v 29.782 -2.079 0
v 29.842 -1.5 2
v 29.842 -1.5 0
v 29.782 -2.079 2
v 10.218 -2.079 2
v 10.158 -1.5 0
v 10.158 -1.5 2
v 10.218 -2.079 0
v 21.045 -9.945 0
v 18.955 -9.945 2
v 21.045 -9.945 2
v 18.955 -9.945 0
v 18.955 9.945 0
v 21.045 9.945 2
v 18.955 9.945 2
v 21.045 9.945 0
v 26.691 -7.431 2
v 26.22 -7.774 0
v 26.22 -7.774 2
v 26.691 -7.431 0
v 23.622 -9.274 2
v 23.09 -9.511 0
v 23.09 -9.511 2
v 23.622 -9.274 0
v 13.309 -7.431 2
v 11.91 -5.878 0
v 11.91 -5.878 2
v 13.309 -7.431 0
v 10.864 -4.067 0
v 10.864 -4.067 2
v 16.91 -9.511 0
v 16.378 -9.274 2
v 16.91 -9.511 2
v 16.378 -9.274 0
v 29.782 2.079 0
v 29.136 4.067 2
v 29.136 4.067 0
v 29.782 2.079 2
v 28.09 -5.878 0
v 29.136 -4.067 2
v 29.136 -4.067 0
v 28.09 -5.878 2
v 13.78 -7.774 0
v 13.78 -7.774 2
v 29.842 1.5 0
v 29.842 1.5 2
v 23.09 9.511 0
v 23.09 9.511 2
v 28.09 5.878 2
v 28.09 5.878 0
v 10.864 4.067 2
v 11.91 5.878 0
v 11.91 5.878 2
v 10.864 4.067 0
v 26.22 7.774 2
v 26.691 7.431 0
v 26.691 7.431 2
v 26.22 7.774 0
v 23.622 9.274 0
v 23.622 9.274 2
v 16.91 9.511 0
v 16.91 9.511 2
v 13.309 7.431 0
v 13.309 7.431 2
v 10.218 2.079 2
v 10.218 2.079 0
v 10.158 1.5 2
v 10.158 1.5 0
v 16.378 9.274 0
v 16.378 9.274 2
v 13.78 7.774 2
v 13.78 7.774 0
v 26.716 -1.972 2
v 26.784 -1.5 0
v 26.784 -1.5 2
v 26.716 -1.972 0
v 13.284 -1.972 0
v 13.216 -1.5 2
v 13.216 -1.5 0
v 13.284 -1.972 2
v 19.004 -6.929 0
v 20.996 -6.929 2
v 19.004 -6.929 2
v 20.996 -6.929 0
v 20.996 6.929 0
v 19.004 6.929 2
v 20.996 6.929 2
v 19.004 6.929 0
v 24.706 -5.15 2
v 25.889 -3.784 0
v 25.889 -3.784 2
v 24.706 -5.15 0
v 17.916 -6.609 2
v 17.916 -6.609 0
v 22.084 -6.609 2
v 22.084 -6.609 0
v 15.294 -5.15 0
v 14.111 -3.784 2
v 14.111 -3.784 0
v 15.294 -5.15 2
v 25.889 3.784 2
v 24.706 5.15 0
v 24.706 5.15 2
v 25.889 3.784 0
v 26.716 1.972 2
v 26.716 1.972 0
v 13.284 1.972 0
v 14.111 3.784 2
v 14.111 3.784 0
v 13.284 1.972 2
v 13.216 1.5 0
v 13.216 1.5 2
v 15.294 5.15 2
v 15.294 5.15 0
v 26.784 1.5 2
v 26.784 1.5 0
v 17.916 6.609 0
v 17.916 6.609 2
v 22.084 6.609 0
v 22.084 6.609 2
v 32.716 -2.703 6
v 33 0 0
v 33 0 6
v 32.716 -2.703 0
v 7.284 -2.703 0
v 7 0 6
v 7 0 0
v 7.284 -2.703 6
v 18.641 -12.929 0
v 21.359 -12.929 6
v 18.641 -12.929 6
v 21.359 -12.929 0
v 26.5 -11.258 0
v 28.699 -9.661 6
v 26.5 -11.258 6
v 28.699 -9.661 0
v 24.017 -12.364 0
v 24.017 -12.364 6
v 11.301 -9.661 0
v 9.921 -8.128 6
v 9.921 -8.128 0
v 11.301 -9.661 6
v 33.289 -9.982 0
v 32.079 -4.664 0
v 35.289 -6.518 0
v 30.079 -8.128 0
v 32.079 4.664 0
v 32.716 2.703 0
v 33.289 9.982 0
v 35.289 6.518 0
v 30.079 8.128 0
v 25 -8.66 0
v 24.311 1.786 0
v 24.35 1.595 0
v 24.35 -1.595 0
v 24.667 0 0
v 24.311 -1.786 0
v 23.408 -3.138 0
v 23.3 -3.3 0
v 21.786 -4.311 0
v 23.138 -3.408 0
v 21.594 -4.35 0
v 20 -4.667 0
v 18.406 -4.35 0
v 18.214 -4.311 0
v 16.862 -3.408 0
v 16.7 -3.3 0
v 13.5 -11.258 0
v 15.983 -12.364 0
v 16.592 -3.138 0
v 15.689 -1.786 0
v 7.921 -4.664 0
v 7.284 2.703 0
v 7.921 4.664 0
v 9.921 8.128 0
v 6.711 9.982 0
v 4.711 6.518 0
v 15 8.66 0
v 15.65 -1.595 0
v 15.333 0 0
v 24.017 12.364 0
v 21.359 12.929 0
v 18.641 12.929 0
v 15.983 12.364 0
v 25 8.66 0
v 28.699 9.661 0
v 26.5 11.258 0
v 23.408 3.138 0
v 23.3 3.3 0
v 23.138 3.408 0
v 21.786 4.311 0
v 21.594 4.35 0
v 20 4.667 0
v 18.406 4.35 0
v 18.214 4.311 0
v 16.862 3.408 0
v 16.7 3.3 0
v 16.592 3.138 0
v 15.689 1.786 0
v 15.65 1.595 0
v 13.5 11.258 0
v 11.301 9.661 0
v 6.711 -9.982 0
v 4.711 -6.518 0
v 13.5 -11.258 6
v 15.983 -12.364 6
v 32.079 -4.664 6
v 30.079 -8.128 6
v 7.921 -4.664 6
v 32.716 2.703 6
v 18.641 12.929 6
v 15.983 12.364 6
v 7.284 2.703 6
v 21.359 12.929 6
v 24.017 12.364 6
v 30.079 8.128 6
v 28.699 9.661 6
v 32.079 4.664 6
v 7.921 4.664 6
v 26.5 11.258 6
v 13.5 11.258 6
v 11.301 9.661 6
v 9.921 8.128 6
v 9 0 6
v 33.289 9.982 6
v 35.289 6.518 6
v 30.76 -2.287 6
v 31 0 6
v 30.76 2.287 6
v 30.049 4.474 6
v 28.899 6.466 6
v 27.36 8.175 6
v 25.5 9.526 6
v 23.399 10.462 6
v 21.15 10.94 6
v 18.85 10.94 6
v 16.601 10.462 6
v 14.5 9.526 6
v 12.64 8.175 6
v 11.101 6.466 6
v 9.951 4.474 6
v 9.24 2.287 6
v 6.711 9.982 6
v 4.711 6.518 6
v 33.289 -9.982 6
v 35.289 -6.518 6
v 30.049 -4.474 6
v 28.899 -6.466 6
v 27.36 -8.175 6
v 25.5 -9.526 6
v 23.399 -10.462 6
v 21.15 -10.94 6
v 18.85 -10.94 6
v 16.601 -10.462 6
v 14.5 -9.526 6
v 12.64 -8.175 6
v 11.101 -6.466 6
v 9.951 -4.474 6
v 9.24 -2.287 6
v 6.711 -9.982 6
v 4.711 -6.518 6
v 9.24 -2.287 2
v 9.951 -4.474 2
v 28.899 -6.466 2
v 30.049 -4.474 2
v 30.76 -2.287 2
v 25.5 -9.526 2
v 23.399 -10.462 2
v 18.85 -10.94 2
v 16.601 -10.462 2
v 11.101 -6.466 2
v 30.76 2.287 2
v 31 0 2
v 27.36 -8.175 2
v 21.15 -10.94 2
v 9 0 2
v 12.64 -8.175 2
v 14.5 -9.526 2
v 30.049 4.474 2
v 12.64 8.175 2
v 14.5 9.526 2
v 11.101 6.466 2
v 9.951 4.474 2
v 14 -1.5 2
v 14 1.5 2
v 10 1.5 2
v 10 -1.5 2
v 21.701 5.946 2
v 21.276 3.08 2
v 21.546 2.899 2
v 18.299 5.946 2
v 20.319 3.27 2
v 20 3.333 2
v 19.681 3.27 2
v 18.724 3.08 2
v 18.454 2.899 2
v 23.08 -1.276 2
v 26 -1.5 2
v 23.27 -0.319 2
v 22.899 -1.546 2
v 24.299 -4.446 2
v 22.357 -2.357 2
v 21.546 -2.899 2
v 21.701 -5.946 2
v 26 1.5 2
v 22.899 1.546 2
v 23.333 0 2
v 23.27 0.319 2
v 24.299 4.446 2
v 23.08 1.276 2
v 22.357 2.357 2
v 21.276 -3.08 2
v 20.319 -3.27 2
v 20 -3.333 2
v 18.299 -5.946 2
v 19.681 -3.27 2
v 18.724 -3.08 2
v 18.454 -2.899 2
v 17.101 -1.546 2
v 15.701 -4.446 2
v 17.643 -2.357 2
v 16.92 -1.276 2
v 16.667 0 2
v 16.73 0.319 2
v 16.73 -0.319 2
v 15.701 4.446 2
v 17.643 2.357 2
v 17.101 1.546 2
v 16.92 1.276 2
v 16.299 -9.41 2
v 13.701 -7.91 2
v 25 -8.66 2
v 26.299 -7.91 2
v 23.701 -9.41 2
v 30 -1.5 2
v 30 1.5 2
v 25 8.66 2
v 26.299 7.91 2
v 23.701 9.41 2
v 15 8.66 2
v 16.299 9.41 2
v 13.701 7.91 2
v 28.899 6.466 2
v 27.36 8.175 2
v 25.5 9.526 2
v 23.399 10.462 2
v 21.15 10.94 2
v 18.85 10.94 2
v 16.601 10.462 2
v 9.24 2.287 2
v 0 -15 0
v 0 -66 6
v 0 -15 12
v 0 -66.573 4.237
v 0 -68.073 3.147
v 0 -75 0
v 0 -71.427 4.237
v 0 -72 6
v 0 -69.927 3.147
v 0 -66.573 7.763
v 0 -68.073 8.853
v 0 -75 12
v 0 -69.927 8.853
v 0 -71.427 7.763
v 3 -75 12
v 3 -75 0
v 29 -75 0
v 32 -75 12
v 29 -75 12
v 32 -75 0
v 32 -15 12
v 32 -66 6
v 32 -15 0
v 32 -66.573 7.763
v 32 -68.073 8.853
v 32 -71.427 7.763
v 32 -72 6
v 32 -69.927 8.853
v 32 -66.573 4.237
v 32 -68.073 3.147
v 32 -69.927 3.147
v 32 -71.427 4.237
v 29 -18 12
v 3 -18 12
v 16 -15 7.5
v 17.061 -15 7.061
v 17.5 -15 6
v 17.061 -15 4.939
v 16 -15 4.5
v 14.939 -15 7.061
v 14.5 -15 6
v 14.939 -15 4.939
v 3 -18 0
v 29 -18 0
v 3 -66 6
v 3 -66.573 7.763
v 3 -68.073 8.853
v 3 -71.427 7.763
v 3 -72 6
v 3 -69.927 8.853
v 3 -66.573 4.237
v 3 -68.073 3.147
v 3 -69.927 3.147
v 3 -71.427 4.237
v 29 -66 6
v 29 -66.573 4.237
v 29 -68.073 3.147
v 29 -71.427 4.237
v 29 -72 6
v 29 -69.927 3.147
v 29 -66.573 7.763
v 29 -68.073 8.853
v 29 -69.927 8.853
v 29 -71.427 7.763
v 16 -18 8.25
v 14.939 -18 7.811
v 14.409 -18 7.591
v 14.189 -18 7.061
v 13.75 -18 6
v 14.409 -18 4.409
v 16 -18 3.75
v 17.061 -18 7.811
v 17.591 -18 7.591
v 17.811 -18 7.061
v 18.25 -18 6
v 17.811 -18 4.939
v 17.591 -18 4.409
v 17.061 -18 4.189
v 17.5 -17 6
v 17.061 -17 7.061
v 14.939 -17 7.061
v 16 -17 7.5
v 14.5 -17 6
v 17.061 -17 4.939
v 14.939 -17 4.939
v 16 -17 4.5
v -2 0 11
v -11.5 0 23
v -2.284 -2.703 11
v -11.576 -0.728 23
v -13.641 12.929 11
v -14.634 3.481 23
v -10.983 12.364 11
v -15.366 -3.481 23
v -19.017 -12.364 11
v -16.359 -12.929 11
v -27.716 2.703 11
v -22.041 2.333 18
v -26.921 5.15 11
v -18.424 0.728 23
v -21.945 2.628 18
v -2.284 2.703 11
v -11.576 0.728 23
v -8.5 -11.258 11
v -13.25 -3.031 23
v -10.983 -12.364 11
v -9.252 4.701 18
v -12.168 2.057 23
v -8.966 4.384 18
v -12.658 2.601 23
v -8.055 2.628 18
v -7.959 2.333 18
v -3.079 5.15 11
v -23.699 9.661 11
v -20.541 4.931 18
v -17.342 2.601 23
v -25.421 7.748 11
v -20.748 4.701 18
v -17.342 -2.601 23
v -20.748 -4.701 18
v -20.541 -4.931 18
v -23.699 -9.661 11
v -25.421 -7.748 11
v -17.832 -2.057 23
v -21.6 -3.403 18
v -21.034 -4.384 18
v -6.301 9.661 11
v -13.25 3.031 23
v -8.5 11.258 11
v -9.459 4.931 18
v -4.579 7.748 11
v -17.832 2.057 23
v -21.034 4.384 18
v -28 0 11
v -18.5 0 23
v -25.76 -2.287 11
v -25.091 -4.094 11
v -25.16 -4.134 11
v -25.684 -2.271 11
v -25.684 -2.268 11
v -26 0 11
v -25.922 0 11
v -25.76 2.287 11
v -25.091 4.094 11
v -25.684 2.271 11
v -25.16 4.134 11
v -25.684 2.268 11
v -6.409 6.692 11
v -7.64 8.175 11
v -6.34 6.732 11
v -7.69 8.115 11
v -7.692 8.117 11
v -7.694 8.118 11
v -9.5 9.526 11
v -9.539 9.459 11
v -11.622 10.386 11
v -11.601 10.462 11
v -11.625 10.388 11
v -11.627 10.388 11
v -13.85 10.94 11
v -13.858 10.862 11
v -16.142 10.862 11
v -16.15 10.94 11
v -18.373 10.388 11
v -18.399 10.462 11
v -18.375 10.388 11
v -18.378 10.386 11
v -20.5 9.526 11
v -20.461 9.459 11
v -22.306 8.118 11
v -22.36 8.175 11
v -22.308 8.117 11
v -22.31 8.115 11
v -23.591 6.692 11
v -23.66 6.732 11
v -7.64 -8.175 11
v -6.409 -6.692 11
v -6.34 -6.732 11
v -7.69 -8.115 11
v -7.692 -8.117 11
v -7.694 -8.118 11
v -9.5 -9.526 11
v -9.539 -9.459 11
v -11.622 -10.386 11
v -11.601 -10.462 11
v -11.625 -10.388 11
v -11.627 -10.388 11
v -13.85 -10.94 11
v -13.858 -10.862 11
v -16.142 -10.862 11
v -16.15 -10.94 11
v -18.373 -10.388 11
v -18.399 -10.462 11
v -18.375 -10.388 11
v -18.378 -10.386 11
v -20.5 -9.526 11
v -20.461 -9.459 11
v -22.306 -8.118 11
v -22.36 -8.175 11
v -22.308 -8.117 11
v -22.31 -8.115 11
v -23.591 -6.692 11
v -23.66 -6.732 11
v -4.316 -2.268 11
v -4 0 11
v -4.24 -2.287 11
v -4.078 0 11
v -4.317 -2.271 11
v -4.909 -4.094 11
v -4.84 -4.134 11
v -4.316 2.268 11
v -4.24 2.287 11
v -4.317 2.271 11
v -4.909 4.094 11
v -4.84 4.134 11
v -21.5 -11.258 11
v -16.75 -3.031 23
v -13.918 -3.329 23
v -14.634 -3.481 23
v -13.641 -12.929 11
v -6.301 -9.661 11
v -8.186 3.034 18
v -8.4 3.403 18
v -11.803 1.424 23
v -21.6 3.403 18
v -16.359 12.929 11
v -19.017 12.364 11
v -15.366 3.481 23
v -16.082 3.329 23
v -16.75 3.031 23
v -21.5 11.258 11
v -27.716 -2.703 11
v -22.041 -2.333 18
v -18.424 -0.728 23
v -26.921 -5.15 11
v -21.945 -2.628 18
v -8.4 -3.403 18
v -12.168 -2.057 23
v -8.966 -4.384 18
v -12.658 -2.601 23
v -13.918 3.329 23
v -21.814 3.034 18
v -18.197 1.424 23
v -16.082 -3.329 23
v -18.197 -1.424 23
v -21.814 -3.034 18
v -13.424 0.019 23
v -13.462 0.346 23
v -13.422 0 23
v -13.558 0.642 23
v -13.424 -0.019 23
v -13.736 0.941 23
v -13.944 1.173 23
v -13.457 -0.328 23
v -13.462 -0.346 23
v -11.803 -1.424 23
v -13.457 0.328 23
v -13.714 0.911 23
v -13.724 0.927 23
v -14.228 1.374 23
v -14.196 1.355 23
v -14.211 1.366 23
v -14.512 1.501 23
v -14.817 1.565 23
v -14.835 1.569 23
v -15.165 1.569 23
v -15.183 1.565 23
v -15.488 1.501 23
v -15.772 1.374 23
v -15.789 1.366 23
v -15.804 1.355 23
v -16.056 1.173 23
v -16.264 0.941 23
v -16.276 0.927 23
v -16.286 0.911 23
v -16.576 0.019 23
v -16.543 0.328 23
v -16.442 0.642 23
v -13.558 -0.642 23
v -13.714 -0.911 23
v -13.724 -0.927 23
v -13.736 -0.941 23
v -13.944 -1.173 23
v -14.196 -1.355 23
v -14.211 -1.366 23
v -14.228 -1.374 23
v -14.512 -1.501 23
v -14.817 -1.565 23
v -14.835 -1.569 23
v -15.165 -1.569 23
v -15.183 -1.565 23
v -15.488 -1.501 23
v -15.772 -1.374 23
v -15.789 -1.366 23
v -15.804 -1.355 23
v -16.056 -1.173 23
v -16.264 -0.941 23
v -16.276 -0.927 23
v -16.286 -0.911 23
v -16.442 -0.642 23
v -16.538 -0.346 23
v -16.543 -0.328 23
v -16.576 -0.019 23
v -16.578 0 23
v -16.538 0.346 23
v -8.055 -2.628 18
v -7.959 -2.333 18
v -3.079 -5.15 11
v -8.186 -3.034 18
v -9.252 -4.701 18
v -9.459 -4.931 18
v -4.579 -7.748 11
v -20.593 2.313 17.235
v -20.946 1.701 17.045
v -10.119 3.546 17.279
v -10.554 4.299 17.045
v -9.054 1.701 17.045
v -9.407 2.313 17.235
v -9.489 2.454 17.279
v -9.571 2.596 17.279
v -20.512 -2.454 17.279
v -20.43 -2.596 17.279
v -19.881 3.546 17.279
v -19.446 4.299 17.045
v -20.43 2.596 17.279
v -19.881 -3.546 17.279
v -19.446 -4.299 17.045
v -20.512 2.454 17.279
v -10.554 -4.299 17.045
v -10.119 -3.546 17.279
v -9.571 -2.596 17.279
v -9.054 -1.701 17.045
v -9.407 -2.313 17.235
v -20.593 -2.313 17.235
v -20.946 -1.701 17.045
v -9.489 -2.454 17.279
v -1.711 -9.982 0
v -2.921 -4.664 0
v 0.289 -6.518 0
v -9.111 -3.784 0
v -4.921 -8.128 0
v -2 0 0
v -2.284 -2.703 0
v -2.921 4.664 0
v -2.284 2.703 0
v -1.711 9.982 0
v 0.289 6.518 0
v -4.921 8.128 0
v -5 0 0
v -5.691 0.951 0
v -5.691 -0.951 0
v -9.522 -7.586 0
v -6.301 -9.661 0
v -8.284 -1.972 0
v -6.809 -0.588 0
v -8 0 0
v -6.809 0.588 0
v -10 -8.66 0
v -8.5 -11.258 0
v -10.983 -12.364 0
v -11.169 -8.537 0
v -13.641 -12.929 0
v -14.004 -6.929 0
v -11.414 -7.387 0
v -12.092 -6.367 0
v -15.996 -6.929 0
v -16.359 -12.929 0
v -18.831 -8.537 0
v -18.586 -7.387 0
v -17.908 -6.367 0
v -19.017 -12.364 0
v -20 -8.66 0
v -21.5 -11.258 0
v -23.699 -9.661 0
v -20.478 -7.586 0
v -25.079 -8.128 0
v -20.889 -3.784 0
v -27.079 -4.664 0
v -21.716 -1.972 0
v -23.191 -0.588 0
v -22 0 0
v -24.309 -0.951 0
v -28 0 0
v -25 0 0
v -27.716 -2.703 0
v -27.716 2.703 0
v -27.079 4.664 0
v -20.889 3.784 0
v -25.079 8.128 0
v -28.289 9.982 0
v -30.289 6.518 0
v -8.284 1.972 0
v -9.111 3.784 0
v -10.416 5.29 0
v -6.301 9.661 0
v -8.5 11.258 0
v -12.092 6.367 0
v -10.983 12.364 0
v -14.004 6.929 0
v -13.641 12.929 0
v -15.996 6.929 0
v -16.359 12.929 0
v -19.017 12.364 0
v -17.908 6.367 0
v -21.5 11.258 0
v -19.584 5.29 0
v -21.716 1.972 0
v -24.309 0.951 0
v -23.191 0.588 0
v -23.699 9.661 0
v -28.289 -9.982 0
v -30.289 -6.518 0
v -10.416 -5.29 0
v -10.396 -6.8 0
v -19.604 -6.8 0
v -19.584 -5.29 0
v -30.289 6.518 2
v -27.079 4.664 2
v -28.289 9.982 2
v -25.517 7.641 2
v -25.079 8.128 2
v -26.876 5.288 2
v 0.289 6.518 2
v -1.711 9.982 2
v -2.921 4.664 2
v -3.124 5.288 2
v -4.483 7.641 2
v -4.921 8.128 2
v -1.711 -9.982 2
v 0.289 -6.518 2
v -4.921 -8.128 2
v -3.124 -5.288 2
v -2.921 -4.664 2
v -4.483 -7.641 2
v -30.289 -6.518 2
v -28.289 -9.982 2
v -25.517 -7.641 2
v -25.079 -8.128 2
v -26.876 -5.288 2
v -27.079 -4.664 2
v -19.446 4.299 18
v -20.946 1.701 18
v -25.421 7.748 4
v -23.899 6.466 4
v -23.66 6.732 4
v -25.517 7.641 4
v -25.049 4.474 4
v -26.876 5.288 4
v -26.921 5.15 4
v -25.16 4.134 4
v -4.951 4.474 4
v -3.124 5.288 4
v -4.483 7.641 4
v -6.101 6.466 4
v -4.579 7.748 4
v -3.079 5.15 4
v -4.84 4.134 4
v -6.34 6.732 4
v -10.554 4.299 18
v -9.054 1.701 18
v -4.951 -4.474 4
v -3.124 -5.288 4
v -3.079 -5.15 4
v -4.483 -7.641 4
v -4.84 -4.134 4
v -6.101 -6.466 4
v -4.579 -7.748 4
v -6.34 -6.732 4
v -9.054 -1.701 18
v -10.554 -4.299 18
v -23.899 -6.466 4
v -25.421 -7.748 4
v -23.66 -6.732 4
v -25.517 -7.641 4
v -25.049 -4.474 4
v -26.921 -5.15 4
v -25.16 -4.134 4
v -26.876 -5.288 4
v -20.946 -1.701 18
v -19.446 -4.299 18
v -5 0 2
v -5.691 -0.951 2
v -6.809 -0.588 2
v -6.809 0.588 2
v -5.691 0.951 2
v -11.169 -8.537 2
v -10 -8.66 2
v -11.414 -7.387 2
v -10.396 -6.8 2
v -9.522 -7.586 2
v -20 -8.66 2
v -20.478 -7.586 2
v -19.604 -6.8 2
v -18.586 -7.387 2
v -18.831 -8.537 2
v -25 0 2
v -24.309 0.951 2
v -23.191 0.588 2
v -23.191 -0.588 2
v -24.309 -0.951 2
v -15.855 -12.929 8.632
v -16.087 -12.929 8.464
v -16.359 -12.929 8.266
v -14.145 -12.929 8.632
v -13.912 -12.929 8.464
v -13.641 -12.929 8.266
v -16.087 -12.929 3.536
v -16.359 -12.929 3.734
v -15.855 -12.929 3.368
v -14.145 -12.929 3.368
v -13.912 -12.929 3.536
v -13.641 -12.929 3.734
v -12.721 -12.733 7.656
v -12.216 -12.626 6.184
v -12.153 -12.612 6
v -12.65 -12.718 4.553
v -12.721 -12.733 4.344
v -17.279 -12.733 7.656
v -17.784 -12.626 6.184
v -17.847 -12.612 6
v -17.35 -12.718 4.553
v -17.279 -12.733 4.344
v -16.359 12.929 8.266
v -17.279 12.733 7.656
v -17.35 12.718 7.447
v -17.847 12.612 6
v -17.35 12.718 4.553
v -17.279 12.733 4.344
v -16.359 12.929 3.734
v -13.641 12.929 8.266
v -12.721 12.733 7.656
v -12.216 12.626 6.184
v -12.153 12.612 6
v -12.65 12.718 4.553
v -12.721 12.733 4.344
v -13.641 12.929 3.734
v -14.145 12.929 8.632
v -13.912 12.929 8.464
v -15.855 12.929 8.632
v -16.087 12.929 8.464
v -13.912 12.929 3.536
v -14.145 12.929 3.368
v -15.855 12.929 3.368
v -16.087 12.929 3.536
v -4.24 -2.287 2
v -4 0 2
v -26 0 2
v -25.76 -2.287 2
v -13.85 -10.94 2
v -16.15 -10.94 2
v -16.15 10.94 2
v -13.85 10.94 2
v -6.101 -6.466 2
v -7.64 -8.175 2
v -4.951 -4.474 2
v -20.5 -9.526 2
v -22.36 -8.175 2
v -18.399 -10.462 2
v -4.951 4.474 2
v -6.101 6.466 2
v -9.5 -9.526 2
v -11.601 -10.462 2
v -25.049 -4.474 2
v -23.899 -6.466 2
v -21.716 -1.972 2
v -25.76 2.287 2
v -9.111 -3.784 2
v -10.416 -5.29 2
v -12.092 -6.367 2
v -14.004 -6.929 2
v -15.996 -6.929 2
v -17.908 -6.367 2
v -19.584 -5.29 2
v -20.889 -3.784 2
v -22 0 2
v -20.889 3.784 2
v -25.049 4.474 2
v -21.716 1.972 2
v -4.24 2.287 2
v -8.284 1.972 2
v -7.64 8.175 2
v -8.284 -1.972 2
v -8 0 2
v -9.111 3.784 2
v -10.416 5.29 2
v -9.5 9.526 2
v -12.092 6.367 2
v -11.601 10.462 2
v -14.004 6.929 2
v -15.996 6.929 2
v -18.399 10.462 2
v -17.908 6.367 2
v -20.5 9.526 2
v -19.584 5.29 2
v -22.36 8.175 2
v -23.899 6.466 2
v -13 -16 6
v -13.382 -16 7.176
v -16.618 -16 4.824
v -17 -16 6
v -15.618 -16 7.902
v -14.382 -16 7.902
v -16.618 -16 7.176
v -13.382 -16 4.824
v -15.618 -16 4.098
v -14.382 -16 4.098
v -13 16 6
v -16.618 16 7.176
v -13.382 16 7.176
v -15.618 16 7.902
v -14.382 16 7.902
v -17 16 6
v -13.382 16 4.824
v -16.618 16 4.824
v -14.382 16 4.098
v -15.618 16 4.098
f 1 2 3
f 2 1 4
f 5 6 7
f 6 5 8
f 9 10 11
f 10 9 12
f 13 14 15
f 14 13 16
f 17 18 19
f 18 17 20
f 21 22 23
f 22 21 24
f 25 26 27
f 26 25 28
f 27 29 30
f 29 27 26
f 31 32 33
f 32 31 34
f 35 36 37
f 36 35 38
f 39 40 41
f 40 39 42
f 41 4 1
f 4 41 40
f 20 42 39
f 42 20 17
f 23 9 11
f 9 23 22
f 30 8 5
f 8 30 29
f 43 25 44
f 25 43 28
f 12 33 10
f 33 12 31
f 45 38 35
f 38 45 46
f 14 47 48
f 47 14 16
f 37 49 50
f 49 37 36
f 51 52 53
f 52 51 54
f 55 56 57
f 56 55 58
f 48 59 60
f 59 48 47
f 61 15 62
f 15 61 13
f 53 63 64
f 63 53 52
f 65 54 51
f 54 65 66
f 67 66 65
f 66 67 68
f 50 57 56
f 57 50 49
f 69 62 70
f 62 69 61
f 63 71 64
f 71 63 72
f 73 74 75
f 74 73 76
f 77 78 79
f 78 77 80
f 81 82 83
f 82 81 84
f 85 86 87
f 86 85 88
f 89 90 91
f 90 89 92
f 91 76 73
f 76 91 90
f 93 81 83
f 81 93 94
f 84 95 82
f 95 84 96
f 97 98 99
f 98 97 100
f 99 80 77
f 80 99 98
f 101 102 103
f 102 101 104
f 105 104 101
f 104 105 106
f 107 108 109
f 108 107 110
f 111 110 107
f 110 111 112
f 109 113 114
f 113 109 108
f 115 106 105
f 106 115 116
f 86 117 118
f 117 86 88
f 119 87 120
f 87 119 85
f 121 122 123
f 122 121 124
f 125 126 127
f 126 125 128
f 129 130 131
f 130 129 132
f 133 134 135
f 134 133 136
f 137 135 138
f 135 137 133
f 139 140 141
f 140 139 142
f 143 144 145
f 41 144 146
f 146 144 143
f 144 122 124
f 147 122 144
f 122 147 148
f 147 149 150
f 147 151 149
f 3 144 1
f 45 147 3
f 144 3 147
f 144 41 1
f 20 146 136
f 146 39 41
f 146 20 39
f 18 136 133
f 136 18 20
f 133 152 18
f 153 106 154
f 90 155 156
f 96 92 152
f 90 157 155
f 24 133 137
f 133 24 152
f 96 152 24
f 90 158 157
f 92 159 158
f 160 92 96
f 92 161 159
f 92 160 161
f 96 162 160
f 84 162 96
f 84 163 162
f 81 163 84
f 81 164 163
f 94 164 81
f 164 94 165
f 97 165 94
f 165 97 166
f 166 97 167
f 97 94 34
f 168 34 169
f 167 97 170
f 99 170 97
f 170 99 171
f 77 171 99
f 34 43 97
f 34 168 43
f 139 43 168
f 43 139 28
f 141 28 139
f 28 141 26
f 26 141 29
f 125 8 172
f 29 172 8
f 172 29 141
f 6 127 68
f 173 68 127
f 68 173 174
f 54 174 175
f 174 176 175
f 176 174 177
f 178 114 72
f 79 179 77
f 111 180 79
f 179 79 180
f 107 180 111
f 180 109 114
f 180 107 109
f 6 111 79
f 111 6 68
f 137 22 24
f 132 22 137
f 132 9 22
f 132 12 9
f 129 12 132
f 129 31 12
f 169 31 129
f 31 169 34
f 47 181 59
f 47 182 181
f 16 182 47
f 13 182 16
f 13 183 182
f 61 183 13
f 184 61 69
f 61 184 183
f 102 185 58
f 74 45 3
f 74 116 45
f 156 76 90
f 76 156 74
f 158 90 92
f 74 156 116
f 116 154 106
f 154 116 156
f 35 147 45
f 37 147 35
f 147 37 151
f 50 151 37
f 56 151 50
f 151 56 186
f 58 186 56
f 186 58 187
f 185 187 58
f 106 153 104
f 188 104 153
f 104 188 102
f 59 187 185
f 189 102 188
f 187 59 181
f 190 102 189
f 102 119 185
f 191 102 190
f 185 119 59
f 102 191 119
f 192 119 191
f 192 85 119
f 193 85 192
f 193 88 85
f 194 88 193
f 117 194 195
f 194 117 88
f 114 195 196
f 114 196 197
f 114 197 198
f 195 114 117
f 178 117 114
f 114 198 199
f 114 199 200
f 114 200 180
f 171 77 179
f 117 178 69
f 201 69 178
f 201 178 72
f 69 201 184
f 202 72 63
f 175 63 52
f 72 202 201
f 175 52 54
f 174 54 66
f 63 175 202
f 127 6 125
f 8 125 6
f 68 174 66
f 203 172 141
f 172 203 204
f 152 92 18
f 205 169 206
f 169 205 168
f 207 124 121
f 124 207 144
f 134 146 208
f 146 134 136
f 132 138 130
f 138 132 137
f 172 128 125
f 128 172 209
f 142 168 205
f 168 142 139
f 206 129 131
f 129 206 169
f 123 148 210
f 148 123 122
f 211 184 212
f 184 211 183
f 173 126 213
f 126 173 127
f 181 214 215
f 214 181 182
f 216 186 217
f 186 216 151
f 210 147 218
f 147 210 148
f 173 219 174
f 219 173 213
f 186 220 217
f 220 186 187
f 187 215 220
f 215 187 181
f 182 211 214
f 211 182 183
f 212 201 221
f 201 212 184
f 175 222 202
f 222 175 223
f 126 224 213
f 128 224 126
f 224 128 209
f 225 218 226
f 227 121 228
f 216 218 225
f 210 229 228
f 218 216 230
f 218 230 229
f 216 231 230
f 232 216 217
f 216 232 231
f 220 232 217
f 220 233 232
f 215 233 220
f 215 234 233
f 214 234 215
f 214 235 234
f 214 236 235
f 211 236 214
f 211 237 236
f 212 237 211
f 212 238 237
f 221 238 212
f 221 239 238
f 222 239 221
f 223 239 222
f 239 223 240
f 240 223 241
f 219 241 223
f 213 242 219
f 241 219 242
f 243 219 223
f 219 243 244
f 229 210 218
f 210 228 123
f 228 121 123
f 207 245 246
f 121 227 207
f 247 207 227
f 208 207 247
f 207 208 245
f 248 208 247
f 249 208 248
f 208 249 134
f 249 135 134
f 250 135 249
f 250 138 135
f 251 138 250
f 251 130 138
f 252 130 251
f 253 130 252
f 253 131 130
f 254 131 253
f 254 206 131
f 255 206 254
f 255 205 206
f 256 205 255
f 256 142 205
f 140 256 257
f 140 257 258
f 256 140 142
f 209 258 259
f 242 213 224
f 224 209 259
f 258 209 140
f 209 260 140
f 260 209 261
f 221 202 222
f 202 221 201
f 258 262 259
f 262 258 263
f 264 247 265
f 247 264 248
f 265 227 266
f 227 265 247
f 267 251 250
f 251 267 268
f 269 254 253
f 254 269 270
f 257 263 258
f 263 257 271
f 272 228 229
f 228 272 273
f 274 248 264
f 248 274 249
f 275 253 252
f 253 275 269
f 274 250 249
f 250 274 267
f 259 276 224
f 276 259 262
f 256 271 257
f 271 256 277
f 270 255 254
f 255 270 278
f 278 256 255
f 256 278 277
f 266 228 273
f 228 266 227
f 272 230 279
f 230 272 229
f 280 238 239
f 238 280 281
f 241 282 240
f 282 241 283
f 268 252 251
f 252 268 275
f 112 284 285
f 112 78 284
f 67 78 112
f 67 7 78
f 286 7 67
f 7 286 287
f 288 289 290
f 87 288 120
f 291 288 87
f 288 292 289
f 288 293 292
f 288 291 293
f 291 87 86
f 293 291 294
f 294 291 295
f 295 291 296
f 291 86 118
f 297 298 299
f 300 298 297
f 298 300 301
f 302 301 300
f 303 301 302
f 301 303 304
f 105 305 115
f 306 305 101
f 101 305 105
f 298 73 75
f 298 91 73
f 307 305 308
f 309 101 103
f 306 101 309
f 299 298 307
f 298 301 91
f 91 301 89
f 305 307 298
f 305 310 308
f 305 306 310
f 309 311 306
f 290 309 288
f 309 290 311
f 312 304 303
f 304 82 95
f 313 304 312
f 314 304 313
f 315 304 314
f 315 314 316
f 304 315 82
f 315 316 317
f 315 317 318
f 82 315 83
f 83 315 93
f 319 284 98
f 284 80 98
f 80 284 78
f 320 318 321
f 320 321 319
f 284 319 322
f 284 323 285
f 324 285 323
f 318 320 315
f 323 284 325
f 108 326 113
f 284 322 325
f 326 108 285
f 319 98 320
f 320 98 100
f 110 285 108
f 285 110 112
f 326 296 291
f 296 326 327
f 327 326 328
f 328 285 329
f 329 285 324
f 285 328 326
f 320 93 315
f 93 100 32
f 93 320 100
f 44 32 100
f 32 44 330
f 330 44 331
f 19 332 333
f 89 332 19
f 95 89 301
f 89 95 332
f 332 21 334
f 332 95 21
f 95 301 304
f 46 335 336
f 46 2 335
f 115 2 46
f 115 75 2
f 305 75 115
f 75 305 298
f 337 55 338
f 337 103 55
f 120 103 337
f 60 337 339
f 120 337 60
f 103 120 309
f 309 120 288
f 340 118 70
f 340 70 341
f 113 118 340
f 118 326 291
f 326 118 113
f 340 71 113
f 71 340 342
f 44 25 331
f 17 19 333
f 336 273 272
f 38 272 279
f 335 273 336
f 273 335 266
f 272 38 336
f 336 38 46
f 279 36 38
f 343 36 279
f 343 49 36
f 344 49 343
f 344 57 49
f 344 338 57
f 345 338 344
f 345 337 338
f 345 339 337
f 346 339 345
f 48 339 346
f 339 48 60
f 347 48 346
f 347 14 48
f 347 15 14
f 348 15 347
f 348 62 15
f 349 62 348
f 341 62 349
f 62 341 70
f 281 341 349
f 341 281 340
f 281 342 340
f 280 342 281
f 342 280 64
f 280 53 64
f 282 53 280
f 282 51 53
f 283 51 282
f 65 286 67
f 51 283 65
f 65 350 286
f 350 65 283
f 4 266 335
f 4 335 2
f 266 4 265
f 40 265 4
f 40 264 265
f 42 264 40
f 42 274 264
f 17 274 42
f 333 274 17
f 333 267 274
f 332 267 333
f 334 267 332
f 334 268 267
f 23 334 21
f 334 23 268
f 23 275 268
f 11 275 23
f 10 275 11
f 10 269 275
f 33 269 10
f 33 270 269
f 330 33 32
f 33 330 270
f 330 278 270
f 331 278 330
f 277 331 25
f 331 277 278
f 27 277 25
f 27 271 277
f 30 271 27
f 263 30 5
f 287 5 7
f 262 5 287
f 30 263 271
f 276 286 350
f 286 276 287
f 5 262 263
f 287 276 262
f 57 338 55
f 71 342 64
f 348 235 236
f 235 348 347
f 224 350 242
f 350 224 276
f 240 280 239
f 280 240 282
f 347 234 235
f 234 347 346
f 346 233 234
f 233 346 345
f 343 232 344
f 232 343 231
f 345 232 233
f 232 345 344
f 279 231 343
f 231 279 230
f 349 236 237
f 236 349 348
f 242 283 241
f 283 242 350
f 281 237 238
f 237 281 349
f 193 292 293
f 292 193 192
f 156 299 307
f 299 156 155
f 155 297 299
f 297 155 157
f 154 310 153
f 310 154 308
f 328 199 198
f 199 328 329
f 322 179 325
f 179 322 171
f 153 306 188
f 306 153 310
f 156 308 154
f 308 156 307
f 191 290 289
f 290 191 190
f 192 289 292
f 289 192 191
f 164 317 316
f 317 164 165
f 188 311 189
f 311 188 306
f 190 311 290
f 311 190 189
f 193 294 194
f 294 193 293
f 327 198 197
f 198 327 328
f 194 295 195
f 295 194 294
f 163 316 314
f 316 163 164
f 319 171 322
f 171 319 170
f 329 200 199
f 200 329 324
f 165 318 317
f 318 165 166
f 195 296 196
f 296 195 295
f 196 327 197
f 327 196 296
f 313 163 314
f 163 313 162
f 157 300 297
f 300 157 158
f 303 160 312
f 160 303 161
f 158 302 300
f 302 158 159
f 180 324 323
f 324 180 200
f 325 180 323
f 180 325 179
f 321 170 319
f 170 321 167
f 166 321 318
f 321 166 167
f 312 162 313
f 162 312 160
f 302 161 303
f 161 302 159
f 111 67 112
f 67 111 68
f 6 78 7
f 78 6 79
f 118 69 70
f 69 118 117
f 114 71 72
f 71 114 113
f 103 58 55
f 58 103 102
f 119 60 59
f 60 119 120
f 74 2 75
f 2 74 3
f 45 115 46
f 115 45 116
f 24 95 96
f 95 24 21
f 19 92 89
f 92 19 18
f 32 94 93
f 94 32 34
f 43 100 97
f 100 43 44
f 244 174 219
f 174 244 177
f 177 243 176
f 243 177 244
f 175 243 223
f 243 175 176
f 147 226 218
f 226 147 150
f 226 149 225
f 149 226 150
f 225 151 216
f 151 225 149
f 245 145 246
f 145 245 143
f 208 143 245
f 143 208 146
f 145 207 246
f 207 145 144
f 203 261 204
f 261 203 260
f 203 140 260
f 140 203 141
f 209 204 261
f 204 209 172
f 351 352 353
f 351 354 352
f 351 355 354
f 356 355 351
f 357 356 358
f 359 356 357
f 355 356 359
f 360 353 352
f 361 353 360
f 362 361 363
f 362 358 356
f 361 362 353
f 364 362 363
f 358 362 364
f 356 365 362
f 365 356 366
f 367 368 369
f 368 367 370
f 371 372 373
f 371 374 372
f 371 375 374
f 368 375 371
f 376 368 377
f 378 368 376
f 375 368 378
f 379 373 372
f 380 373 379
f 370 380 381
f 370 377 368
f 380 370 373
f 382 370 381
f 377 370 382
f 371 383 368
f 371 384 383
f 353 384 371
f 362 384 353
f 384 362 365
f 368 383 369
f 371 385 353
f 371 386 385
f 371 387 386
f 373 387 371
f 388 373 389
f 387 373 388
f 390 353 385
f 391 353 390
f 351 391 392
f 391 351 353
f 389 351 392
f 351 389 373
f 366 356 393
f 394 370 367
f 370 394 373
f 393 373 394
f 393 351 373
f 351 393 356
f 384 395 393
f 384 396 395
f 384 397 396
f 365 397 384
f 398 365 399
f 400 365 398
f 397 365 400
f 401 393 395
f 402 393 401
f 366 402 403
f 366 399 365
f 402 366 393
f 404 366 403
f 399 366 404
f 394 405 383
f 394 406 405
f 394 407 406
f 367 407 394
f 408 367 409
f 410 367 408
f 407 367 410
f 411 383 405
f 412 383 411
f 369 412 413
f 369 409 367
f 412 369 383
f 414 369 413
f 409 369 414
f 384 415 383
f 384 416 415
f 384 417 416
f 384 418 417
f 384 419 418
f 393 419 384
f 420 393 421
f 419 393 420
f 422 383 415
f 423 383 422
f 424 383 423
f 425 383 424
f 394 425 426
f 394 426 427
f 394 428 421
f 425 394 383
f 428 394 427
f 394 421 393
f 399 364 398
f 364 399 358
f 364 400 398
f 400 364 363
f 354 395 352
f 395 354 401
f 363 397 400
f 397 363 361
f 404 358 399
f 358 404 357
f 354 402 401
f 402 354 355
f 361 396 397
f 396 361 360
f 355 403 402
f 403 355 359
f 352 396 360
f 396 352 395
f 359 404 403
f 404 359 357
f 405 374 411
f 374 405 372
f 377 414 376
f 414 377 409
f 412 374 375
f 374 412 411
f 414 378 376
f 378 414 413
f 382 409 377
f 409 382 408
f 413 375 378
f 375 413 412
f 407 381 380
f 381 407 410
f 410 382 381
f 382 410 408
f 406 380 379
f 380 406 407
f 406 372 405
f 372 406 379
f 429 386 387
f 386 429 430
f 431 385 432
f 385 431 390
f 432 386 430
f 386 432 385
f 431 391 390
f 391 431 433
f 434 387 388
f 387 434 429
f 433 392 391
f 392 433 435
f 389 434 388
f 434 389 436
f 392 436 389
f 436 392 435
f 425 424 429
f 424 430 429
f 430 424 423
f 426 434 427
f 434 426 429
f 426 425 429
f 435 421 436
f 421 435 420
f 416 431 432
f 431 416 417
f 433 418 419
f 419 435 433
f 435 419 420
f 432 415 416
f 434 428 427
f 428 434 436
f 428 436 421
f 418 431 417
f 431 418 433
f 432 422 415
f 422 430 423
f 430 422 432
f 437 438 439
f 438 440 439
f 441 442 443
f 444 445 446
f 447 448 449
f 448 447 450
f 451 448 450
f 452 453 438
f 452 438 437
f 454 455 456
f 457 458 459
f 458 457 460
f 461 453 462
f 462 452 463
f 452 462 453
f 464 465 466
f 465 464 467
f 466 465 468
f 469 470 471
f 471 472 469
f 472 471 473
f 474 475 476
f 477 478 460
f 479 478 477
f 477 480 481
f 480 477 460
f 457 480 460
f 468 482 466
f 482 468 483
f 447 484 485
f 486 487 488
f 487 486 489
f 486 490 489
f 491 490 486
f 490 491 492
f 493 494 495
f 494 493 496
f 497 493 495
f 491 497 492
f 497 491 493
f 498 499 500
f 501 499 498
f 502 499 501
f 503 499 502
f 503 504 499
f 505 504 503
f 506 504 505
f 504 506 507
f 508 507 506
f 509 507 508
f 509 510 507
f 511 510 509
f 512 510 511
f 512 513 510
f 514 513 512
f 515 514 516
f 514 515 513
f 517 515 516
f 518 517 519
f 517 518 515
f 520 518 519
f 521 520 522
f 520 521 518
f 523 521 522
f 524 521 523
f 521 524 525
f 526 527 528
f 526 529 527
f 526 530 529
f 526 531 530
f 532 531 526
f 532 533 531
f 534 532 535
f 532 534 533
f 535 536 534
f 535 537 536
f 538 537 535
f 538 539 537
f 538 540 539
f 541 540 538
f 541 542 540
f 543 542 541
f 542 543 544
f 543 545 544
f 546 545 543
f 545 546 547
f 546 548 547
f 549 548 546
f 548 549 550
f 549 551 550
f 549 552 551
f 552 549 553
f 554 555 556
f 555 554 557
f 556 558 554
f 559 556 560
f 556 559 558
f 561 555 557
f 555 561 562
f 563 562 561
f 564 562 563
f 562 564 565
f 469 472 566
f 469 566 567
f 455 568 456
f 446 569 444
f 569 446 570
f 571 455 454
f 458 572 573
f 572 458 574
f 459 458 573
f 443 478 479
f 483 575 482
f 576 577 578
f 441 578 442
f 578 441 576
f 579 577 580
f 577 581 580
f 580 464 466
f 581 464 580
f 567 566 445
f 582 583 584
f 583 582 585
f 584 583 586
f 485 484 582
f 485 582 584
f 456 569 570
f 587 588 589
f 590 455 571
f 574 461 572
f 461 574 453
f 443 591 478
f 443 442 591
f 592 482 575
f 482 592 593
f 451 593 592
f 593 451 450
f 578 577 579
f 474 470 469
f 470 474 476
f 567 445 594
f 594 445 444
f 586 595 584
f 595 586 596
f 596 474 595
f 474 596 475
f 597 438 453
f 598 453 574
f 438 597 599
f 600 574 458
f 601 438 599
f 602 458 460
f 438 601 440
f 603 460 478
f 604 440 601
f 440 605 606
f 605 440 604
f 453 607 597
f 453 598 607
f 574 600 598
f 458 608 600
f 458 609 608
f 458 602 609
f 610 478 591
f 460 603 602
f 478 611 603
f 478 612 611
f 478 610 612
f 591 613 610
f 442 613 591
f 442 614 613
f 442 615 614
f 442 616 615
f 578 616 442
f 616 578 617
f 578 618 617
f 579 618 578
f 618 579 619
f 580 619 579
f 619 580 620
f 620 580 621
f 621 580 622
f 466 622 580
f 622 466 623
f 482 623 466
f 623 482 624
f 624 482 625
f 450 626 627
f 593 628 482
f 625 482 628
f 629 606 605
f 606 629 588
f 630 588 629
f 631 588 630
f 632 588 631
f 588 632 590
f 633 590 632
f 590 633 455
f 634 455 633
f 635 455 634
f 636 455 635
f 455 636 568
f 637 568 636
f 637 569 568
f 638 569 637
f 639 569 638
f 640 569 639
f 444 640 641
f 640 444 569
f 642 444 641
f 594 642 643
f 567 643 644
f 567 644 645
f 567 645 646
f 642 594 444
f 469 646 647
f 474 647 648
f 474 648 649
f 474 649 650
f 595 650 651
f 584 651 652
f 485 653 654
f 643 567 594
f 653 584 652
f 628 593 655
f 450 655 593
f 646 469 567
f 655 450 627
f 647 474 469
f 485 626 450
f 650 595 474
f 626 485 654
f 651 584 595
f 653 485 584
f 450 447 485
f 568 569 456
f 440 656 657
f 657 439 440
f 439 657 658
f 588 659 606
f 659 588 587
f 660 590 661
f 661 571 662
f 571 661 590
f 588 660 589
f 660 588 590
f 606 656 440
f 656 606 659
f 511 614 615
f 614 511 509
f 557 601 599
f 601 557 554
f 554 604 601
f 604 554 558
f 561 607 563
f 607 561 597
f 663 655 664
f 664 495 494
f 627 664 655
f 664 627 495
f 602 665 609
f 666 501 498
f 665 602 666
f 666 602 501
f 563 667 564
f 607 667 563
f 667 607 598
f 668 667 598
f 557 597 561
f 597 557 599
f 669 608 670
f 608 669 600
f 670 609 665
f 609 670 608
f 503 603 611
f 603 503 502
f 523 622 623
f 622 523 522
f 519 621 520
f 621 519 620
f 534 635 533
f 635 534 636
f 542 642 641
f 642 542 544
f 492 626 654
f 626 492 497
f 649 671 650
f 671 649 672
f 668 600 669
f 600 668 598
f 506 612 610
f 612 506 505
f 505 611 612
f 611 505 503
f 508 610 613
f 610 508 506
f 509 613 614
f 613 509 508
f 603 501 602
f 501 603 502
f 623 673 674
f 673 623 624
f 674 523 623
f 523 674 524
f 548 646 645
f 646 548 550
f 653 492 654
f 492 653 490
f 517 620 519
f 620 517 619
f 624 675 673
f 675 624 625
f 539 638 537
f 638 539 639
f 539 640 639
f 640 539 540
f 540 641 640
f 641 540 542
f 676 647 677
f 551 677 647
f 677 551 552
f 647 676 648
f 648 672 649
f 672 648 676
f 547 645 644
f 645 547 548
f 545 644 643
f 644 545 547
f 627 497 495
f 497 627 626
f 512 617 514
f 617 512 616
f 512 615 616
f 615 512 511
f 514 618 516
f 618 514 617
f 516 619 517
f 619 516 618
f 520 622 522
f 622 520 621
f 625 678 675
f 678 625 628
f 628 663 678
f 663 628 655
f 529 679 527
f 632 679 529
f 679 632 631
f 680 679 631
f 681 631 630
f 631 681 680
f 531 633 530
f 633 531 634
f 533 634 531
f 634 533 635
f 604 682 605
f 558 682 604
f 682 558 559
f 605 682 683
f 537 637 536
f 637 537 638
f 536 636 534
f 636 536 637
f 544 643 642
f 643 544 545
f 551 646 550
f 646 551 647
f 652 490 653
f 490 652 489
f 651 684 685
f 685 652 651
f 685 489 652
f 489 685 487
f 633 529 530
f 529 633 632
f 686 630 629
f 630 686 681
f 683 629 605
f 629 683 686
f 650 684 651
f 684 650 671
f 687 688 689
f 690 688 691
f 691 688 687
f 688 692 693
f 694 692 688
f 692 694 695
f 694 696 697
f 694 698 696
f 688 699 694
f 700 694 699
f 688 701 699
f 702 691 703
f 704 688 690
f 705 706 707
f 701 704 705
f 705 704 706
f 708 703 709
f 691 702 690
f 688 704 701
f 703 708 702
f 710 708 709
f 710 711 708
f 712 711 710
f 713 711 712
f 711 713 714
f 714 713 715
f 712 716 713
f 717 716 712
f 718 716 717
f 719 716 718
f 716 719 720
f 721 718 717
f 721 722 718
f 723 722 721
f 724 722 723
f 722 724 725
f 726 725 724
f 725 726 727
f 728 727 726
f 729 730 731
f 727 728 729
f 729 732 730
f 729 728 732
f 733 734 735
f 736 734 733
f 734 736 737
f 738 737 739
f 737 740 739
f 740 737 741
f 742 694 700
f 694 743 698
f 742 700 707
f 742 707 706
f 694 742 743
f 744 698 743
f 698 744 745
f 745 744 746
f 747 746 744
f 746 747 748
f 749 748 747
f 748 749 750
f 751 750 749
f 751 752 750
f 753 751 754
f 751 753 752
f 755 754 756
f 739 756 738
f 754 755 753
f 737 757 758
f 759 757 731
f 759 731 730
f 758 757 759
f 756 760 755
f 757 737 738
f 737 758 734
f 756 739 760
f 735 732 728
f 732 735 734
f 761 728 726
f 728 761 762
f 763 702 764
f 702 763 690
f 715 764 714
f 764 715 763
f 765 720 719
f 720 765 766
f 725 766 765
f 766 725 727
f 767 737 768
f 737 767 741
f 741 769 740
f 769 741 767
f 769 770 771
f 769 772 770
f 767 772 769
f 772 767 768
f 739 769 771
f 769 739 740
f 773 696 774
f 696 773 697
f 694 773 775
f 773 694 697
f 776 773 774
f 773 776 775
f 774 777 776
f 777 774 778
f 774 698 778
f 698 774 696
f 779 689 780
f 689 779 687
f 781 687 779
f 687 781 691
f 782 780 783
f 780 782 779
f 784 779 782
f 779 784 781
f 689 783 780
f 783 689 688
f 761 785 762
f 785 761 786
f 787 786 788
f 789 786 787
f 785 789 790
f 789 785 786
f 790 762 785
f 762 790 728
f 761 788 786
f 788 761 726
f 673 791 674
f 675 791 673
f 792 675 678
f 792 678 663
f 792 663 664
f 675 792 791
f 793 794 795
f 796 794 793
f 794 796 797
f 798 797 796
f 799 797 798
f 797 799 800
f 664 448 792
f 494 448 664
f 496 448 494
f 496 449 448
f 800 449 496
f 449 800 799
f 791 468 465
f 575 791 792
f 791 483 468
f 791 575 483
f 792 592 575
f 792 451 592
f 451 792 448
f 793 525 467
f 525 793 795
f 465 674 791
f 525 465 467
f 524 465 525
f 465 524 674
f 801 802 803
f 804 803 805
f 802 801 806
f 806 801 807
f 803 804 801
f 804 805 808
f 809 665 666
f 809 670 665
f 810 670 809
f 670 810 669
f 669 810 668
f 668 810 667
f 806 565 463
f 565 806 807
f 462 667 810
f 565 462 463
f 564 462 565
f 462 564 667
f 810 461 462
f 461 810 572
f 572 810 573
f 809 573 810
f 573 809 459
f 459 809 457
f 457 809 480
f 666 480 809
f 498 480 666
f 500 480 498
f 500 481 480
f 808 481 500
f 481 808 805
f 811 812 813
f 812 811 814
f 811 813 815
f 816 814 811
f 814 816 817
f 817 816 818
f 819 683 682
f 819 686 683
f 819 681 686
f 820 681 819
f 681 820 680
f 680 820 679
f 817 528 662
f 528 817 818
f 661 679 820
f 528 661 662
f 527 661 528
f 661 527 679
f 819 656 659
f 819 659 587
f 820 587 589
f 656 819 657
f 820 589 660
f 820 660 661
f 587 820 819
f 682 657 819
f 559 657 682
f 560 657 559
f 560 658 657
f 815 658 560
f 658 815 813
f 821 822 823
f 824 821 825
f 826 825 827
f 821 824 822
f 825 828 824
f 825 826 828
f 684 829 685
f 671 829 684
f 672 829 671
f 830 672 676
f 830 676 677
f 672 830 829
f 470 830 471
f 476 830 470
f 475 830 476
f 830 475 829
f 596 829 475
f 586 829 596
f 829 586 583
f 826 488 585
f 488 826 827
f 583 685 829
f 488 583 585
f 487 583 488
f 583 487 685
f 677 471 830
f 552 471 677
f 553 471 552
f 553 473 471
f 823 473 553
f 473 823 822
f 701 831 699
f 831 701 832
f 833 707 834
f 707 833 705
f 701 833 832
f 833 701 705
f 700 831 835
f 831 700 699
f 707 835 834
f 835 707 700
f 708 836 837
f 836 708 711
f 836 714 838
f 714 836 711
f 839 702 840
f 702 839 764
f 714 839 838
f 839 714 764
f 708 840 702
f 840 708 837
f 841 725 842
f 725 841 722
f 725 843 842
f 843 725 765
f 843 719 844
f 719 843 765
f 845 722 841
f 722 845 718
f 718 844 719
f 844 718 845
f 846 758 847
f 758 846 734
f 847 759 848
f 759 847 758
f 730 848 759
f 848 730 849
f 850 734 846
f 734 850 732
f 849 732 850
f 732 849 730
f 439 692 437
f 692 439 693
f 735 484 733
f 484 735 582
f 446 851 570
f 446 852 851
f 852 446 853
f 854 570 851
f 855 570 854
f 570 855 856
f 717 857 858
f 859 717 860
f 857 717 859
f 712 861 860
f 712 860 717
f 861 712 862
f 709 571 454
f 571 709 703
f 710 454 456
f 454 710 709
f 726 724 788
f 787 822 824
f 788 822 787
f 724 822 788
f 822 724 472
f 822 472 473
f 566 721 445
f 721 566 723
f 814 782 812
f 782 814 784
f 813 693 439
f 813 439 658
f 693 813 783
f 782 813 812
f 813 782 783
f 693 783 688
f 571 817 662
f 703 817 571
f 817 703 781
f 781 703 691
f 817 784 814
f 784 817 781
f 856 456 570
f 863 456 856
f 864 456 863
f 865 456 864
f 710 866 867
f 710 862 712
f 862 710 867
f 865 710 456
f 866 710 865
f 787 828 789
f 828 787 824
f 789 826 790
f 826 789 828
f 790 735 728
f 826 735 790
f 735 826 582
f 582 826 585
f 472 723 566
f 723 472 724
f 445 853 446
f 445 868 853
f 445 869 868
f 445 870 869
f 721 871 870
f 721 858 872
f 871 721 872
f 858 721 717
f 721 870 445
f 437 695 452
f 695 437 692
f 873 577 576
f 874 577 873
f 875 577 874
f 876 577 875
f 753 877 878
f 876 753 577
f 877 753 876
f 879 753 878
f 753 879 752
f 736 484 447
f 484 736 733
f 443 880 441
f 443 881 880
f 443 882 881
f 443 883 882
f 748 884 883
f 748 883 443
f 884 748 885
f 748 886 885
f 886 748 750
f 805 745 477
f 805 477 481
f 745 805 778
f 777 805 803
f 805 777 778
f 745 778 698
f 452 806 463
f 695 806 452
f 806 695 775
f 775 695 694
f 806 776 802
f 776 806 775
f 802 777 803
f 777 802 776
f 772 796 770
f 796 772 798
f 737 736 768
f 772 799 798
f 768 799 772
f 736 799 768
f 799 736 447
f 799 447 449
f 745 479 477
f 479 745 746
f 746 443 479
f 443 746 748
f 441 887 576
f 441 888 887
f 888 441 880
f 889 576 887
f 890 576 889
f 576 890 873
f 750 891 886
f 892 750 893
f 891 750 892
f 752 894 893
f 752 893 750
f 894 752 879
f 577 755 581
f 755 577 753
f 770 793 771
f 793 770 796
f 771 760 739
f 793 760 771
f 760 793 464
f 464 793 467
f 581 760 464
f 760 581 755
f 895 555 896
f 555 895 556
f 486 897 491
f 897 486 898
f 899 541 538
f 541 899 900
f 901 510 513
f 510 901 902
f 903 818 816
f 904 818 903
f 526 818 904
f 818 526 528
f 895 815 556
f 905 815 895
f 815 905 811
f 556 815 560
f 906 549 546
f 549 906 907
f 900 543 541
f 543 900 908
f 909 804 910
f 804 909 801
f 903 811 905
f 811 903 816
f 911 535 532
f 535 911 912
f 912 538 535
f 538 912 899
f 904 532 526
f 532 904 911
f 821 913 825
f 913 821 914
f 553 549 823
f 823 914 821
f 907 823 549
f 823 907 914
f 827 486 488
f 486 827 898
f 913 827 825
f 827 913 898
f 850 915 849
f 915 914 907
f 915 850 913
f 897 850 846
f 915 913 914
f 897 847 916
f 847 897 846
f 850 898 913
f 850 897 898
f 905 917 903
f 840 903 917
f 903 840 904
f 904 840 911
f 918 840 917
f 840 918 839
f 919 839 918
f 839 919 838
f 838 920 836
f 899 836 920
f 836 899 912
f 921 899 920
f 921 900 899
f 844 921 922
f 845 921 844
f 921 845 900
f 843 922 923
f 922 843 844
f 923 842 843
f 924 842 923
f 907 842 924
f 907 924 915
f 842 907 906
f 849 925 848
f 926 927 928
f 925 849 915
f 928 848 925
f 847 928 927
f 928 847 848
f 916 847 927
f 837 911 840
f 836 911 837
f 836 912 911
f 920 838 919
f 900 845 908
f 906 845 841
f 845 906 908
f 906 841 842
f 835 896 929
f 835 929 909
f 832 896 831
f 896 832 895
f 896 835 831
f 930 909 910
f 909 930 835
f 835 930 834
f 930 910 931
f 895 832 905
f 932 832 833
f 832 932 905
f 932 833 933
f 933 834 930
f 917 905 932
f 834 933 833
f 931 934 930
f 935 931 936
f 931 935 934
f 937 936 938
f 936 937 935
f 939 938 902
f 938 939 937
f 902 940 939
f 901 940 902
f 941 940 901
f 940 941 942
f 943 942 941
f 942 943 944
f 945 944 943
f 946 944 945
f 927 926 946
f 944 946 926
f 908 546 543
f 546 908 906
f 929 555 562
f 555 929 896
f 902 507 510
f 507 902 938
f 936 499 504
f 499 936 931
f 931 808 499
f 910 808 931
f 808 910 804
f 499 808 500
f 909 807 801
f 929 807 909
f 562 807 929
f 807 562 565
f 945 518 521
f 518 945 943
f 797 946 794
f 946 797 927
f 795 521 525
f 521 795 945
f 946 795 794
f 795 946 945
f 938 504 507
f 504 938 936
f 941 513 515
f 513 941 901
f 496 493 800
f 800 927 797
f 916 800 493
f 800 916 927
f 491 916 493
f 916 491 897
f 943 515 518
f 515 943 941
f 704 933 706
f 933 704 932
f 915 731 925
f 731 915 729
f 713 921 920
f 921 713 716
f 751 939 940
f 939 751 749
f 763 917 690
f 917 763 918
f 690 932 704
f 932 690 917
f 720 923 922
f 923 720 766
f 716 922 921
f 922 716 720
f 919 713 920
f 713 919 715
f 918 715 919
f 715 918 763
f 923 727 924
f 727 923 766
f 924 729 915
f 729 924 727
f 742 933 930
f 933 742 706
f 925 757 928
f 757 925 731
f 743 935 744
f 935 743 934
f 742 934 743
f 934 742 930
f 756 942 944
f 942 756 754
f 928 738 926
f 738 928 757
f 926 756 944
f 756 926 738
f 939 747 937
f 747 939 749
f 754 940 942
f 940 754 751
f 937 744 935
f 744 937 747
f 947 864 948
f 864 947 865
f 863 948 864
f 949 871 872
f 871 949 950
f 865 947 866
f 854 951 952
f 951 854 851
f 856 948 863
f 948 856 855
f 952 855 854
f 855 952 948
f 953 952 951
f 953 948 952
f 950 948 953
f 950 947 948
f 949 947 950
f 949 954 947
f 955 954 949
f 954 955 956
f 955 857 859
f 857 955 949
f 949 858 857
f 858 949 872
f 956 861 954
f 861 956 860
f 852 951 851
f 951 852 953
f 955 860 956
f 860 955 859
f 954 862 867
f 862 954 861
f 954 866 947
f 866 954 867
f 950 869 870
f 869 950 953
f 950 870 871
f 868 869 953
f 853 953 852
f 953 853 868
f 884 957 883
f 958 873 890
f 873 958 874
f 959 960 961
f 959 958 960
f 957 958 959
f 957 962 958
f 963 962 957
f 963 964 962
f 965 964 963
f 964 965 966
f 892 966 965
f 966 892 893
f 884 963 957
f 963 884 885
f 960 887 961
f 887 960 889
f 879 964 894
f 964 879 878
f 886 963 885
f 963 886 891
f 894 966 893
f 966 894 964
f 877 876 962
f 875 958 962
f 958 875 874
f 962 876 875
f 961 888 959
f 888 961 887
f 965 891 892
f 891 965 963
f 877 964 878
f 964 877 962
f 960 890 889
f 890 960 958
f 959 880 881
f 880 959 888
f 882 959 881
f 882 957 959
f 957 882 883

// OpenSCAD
inner_r=10;
base_h=2;
cylinder_h=9;
cone_h=12;
bolt_r=3;
led_h=4;
hold_l=60;

// base
translate([-15, 0, 2]) rotate([180, 0, 0])
difference() {
    union() {
        difference() {
            translate([0, 0, -cylinder_h]) cylinder(r=inner_r + 3, h=base_h + cylinder_h);    
            for(angle = [0, 60, 120, 180]) rotate([0, 0, angle])
                translate([inner_r - 1, 0, -0.5]) cylinder(r=1, h=base_h + 1);
            translate([0, 0, -cylinder_h - 1]) cylinder(r=inner_r + 1, h=cylinder_h + 1);
            translate([0, 0, -0.5]) cylinder(r = inner_r - 3, h=base_h + 1);
        }
        // cone
        difference() {
            translate([0, 0, -cylinder_h - cone_h])
                cylinder(r1=3.5, r2=inner_r + 3, h=cone_h);
            translate([0, 0, -cylinder_h - cone_h - 0.1])
                cylinder(r1=1.5, r2=inner_r + 1, h=cone_h + 0.2);
        }
        // glue pads
        for (angle = [30, 150, 210, 330]) rotate([0, 0, angle])
            translate([-inner_r - 6.5, -2, 0]) cube([4, 4, base_h]);
        // bolts
        translate([0, inner_r + 2, -4]) rotate([-90, 0, 0])
            cylinder(r1=bolt_r, r2=bolt_r - 1, h=4);
        translate([0, -inner_r - 2, -4]) rotate([90, 0, 0])
            cylinder(r1=bolt_r, r2=bolt_r - 1, h=4);
    }
    for (angle = [30, 150, 210, 330]) rotate([0, 0, angle])
        translate([-inner_r - 4, -1.5, -cylinder_h - cone_h/2 - 1]) cube([8, 3, 14]);
}

//lid
translate([20, 0, led_h + 2]) rotate([180, 0, 0])
union() {
    difference() {
        cylinder(r=inner_r + 3, h=led_h + 2);
        translate([0, 0, -1]) cylinder(r=inner_r + 1, h=led_h + 1);
        translate([0, 0, led_h - 0.5]) cylinder(r1=3, r2=5, h=3);
        difference() {
            cylinder(r=inner_r, h=led_h + 3);
            cylinder(r=inner_r - 3, h=led_h + 3);
        }
    }
    for (angle = [0:60:360]) rotate([0, 0, angle])
        translate([-inner_r, -1.5, led_h]) cube([4, 3, 2]);
    for (angle = [30, 150, 210, 330]) rotate([0, 0, angle])
            translate([-inner_r - 6.5, -2, 0]) cube([4, 4, led_h + 2]);
}

translate([0, -15, 0]) rotate([90, 0, 0])
difference() {
    cube([2 * inner_r + 12, bolt_r * 2 + 6, hold_l]);
    translate([3, -1, 3]) cube([2 * inner_r + 6, bolt_r * 2 + 8, hold_l - 2]);
    translate([3.1, bolt_r + 3, hold_l - bolt_r - 3]) rotate([0, -90, 0])
        cylinder(h = 4.2, r=bolt_r);
    translate([2 * inner_r + 8.9, bolt_r + 3, hold_l - bolt_r - 3]) rotate([0, 90, 0])
        cylinder(h = 4.2, r=bolt_r);
    translate([inner_r + 6, bolt_r + 3, -0.5]) cylinder(r=1.5,h=4, $fn=8);
    translate([inner_r + 6, bolt_r + 3, 2]) cylinder(r1=1.5, r2=3, h=2, $fn=8);
}
